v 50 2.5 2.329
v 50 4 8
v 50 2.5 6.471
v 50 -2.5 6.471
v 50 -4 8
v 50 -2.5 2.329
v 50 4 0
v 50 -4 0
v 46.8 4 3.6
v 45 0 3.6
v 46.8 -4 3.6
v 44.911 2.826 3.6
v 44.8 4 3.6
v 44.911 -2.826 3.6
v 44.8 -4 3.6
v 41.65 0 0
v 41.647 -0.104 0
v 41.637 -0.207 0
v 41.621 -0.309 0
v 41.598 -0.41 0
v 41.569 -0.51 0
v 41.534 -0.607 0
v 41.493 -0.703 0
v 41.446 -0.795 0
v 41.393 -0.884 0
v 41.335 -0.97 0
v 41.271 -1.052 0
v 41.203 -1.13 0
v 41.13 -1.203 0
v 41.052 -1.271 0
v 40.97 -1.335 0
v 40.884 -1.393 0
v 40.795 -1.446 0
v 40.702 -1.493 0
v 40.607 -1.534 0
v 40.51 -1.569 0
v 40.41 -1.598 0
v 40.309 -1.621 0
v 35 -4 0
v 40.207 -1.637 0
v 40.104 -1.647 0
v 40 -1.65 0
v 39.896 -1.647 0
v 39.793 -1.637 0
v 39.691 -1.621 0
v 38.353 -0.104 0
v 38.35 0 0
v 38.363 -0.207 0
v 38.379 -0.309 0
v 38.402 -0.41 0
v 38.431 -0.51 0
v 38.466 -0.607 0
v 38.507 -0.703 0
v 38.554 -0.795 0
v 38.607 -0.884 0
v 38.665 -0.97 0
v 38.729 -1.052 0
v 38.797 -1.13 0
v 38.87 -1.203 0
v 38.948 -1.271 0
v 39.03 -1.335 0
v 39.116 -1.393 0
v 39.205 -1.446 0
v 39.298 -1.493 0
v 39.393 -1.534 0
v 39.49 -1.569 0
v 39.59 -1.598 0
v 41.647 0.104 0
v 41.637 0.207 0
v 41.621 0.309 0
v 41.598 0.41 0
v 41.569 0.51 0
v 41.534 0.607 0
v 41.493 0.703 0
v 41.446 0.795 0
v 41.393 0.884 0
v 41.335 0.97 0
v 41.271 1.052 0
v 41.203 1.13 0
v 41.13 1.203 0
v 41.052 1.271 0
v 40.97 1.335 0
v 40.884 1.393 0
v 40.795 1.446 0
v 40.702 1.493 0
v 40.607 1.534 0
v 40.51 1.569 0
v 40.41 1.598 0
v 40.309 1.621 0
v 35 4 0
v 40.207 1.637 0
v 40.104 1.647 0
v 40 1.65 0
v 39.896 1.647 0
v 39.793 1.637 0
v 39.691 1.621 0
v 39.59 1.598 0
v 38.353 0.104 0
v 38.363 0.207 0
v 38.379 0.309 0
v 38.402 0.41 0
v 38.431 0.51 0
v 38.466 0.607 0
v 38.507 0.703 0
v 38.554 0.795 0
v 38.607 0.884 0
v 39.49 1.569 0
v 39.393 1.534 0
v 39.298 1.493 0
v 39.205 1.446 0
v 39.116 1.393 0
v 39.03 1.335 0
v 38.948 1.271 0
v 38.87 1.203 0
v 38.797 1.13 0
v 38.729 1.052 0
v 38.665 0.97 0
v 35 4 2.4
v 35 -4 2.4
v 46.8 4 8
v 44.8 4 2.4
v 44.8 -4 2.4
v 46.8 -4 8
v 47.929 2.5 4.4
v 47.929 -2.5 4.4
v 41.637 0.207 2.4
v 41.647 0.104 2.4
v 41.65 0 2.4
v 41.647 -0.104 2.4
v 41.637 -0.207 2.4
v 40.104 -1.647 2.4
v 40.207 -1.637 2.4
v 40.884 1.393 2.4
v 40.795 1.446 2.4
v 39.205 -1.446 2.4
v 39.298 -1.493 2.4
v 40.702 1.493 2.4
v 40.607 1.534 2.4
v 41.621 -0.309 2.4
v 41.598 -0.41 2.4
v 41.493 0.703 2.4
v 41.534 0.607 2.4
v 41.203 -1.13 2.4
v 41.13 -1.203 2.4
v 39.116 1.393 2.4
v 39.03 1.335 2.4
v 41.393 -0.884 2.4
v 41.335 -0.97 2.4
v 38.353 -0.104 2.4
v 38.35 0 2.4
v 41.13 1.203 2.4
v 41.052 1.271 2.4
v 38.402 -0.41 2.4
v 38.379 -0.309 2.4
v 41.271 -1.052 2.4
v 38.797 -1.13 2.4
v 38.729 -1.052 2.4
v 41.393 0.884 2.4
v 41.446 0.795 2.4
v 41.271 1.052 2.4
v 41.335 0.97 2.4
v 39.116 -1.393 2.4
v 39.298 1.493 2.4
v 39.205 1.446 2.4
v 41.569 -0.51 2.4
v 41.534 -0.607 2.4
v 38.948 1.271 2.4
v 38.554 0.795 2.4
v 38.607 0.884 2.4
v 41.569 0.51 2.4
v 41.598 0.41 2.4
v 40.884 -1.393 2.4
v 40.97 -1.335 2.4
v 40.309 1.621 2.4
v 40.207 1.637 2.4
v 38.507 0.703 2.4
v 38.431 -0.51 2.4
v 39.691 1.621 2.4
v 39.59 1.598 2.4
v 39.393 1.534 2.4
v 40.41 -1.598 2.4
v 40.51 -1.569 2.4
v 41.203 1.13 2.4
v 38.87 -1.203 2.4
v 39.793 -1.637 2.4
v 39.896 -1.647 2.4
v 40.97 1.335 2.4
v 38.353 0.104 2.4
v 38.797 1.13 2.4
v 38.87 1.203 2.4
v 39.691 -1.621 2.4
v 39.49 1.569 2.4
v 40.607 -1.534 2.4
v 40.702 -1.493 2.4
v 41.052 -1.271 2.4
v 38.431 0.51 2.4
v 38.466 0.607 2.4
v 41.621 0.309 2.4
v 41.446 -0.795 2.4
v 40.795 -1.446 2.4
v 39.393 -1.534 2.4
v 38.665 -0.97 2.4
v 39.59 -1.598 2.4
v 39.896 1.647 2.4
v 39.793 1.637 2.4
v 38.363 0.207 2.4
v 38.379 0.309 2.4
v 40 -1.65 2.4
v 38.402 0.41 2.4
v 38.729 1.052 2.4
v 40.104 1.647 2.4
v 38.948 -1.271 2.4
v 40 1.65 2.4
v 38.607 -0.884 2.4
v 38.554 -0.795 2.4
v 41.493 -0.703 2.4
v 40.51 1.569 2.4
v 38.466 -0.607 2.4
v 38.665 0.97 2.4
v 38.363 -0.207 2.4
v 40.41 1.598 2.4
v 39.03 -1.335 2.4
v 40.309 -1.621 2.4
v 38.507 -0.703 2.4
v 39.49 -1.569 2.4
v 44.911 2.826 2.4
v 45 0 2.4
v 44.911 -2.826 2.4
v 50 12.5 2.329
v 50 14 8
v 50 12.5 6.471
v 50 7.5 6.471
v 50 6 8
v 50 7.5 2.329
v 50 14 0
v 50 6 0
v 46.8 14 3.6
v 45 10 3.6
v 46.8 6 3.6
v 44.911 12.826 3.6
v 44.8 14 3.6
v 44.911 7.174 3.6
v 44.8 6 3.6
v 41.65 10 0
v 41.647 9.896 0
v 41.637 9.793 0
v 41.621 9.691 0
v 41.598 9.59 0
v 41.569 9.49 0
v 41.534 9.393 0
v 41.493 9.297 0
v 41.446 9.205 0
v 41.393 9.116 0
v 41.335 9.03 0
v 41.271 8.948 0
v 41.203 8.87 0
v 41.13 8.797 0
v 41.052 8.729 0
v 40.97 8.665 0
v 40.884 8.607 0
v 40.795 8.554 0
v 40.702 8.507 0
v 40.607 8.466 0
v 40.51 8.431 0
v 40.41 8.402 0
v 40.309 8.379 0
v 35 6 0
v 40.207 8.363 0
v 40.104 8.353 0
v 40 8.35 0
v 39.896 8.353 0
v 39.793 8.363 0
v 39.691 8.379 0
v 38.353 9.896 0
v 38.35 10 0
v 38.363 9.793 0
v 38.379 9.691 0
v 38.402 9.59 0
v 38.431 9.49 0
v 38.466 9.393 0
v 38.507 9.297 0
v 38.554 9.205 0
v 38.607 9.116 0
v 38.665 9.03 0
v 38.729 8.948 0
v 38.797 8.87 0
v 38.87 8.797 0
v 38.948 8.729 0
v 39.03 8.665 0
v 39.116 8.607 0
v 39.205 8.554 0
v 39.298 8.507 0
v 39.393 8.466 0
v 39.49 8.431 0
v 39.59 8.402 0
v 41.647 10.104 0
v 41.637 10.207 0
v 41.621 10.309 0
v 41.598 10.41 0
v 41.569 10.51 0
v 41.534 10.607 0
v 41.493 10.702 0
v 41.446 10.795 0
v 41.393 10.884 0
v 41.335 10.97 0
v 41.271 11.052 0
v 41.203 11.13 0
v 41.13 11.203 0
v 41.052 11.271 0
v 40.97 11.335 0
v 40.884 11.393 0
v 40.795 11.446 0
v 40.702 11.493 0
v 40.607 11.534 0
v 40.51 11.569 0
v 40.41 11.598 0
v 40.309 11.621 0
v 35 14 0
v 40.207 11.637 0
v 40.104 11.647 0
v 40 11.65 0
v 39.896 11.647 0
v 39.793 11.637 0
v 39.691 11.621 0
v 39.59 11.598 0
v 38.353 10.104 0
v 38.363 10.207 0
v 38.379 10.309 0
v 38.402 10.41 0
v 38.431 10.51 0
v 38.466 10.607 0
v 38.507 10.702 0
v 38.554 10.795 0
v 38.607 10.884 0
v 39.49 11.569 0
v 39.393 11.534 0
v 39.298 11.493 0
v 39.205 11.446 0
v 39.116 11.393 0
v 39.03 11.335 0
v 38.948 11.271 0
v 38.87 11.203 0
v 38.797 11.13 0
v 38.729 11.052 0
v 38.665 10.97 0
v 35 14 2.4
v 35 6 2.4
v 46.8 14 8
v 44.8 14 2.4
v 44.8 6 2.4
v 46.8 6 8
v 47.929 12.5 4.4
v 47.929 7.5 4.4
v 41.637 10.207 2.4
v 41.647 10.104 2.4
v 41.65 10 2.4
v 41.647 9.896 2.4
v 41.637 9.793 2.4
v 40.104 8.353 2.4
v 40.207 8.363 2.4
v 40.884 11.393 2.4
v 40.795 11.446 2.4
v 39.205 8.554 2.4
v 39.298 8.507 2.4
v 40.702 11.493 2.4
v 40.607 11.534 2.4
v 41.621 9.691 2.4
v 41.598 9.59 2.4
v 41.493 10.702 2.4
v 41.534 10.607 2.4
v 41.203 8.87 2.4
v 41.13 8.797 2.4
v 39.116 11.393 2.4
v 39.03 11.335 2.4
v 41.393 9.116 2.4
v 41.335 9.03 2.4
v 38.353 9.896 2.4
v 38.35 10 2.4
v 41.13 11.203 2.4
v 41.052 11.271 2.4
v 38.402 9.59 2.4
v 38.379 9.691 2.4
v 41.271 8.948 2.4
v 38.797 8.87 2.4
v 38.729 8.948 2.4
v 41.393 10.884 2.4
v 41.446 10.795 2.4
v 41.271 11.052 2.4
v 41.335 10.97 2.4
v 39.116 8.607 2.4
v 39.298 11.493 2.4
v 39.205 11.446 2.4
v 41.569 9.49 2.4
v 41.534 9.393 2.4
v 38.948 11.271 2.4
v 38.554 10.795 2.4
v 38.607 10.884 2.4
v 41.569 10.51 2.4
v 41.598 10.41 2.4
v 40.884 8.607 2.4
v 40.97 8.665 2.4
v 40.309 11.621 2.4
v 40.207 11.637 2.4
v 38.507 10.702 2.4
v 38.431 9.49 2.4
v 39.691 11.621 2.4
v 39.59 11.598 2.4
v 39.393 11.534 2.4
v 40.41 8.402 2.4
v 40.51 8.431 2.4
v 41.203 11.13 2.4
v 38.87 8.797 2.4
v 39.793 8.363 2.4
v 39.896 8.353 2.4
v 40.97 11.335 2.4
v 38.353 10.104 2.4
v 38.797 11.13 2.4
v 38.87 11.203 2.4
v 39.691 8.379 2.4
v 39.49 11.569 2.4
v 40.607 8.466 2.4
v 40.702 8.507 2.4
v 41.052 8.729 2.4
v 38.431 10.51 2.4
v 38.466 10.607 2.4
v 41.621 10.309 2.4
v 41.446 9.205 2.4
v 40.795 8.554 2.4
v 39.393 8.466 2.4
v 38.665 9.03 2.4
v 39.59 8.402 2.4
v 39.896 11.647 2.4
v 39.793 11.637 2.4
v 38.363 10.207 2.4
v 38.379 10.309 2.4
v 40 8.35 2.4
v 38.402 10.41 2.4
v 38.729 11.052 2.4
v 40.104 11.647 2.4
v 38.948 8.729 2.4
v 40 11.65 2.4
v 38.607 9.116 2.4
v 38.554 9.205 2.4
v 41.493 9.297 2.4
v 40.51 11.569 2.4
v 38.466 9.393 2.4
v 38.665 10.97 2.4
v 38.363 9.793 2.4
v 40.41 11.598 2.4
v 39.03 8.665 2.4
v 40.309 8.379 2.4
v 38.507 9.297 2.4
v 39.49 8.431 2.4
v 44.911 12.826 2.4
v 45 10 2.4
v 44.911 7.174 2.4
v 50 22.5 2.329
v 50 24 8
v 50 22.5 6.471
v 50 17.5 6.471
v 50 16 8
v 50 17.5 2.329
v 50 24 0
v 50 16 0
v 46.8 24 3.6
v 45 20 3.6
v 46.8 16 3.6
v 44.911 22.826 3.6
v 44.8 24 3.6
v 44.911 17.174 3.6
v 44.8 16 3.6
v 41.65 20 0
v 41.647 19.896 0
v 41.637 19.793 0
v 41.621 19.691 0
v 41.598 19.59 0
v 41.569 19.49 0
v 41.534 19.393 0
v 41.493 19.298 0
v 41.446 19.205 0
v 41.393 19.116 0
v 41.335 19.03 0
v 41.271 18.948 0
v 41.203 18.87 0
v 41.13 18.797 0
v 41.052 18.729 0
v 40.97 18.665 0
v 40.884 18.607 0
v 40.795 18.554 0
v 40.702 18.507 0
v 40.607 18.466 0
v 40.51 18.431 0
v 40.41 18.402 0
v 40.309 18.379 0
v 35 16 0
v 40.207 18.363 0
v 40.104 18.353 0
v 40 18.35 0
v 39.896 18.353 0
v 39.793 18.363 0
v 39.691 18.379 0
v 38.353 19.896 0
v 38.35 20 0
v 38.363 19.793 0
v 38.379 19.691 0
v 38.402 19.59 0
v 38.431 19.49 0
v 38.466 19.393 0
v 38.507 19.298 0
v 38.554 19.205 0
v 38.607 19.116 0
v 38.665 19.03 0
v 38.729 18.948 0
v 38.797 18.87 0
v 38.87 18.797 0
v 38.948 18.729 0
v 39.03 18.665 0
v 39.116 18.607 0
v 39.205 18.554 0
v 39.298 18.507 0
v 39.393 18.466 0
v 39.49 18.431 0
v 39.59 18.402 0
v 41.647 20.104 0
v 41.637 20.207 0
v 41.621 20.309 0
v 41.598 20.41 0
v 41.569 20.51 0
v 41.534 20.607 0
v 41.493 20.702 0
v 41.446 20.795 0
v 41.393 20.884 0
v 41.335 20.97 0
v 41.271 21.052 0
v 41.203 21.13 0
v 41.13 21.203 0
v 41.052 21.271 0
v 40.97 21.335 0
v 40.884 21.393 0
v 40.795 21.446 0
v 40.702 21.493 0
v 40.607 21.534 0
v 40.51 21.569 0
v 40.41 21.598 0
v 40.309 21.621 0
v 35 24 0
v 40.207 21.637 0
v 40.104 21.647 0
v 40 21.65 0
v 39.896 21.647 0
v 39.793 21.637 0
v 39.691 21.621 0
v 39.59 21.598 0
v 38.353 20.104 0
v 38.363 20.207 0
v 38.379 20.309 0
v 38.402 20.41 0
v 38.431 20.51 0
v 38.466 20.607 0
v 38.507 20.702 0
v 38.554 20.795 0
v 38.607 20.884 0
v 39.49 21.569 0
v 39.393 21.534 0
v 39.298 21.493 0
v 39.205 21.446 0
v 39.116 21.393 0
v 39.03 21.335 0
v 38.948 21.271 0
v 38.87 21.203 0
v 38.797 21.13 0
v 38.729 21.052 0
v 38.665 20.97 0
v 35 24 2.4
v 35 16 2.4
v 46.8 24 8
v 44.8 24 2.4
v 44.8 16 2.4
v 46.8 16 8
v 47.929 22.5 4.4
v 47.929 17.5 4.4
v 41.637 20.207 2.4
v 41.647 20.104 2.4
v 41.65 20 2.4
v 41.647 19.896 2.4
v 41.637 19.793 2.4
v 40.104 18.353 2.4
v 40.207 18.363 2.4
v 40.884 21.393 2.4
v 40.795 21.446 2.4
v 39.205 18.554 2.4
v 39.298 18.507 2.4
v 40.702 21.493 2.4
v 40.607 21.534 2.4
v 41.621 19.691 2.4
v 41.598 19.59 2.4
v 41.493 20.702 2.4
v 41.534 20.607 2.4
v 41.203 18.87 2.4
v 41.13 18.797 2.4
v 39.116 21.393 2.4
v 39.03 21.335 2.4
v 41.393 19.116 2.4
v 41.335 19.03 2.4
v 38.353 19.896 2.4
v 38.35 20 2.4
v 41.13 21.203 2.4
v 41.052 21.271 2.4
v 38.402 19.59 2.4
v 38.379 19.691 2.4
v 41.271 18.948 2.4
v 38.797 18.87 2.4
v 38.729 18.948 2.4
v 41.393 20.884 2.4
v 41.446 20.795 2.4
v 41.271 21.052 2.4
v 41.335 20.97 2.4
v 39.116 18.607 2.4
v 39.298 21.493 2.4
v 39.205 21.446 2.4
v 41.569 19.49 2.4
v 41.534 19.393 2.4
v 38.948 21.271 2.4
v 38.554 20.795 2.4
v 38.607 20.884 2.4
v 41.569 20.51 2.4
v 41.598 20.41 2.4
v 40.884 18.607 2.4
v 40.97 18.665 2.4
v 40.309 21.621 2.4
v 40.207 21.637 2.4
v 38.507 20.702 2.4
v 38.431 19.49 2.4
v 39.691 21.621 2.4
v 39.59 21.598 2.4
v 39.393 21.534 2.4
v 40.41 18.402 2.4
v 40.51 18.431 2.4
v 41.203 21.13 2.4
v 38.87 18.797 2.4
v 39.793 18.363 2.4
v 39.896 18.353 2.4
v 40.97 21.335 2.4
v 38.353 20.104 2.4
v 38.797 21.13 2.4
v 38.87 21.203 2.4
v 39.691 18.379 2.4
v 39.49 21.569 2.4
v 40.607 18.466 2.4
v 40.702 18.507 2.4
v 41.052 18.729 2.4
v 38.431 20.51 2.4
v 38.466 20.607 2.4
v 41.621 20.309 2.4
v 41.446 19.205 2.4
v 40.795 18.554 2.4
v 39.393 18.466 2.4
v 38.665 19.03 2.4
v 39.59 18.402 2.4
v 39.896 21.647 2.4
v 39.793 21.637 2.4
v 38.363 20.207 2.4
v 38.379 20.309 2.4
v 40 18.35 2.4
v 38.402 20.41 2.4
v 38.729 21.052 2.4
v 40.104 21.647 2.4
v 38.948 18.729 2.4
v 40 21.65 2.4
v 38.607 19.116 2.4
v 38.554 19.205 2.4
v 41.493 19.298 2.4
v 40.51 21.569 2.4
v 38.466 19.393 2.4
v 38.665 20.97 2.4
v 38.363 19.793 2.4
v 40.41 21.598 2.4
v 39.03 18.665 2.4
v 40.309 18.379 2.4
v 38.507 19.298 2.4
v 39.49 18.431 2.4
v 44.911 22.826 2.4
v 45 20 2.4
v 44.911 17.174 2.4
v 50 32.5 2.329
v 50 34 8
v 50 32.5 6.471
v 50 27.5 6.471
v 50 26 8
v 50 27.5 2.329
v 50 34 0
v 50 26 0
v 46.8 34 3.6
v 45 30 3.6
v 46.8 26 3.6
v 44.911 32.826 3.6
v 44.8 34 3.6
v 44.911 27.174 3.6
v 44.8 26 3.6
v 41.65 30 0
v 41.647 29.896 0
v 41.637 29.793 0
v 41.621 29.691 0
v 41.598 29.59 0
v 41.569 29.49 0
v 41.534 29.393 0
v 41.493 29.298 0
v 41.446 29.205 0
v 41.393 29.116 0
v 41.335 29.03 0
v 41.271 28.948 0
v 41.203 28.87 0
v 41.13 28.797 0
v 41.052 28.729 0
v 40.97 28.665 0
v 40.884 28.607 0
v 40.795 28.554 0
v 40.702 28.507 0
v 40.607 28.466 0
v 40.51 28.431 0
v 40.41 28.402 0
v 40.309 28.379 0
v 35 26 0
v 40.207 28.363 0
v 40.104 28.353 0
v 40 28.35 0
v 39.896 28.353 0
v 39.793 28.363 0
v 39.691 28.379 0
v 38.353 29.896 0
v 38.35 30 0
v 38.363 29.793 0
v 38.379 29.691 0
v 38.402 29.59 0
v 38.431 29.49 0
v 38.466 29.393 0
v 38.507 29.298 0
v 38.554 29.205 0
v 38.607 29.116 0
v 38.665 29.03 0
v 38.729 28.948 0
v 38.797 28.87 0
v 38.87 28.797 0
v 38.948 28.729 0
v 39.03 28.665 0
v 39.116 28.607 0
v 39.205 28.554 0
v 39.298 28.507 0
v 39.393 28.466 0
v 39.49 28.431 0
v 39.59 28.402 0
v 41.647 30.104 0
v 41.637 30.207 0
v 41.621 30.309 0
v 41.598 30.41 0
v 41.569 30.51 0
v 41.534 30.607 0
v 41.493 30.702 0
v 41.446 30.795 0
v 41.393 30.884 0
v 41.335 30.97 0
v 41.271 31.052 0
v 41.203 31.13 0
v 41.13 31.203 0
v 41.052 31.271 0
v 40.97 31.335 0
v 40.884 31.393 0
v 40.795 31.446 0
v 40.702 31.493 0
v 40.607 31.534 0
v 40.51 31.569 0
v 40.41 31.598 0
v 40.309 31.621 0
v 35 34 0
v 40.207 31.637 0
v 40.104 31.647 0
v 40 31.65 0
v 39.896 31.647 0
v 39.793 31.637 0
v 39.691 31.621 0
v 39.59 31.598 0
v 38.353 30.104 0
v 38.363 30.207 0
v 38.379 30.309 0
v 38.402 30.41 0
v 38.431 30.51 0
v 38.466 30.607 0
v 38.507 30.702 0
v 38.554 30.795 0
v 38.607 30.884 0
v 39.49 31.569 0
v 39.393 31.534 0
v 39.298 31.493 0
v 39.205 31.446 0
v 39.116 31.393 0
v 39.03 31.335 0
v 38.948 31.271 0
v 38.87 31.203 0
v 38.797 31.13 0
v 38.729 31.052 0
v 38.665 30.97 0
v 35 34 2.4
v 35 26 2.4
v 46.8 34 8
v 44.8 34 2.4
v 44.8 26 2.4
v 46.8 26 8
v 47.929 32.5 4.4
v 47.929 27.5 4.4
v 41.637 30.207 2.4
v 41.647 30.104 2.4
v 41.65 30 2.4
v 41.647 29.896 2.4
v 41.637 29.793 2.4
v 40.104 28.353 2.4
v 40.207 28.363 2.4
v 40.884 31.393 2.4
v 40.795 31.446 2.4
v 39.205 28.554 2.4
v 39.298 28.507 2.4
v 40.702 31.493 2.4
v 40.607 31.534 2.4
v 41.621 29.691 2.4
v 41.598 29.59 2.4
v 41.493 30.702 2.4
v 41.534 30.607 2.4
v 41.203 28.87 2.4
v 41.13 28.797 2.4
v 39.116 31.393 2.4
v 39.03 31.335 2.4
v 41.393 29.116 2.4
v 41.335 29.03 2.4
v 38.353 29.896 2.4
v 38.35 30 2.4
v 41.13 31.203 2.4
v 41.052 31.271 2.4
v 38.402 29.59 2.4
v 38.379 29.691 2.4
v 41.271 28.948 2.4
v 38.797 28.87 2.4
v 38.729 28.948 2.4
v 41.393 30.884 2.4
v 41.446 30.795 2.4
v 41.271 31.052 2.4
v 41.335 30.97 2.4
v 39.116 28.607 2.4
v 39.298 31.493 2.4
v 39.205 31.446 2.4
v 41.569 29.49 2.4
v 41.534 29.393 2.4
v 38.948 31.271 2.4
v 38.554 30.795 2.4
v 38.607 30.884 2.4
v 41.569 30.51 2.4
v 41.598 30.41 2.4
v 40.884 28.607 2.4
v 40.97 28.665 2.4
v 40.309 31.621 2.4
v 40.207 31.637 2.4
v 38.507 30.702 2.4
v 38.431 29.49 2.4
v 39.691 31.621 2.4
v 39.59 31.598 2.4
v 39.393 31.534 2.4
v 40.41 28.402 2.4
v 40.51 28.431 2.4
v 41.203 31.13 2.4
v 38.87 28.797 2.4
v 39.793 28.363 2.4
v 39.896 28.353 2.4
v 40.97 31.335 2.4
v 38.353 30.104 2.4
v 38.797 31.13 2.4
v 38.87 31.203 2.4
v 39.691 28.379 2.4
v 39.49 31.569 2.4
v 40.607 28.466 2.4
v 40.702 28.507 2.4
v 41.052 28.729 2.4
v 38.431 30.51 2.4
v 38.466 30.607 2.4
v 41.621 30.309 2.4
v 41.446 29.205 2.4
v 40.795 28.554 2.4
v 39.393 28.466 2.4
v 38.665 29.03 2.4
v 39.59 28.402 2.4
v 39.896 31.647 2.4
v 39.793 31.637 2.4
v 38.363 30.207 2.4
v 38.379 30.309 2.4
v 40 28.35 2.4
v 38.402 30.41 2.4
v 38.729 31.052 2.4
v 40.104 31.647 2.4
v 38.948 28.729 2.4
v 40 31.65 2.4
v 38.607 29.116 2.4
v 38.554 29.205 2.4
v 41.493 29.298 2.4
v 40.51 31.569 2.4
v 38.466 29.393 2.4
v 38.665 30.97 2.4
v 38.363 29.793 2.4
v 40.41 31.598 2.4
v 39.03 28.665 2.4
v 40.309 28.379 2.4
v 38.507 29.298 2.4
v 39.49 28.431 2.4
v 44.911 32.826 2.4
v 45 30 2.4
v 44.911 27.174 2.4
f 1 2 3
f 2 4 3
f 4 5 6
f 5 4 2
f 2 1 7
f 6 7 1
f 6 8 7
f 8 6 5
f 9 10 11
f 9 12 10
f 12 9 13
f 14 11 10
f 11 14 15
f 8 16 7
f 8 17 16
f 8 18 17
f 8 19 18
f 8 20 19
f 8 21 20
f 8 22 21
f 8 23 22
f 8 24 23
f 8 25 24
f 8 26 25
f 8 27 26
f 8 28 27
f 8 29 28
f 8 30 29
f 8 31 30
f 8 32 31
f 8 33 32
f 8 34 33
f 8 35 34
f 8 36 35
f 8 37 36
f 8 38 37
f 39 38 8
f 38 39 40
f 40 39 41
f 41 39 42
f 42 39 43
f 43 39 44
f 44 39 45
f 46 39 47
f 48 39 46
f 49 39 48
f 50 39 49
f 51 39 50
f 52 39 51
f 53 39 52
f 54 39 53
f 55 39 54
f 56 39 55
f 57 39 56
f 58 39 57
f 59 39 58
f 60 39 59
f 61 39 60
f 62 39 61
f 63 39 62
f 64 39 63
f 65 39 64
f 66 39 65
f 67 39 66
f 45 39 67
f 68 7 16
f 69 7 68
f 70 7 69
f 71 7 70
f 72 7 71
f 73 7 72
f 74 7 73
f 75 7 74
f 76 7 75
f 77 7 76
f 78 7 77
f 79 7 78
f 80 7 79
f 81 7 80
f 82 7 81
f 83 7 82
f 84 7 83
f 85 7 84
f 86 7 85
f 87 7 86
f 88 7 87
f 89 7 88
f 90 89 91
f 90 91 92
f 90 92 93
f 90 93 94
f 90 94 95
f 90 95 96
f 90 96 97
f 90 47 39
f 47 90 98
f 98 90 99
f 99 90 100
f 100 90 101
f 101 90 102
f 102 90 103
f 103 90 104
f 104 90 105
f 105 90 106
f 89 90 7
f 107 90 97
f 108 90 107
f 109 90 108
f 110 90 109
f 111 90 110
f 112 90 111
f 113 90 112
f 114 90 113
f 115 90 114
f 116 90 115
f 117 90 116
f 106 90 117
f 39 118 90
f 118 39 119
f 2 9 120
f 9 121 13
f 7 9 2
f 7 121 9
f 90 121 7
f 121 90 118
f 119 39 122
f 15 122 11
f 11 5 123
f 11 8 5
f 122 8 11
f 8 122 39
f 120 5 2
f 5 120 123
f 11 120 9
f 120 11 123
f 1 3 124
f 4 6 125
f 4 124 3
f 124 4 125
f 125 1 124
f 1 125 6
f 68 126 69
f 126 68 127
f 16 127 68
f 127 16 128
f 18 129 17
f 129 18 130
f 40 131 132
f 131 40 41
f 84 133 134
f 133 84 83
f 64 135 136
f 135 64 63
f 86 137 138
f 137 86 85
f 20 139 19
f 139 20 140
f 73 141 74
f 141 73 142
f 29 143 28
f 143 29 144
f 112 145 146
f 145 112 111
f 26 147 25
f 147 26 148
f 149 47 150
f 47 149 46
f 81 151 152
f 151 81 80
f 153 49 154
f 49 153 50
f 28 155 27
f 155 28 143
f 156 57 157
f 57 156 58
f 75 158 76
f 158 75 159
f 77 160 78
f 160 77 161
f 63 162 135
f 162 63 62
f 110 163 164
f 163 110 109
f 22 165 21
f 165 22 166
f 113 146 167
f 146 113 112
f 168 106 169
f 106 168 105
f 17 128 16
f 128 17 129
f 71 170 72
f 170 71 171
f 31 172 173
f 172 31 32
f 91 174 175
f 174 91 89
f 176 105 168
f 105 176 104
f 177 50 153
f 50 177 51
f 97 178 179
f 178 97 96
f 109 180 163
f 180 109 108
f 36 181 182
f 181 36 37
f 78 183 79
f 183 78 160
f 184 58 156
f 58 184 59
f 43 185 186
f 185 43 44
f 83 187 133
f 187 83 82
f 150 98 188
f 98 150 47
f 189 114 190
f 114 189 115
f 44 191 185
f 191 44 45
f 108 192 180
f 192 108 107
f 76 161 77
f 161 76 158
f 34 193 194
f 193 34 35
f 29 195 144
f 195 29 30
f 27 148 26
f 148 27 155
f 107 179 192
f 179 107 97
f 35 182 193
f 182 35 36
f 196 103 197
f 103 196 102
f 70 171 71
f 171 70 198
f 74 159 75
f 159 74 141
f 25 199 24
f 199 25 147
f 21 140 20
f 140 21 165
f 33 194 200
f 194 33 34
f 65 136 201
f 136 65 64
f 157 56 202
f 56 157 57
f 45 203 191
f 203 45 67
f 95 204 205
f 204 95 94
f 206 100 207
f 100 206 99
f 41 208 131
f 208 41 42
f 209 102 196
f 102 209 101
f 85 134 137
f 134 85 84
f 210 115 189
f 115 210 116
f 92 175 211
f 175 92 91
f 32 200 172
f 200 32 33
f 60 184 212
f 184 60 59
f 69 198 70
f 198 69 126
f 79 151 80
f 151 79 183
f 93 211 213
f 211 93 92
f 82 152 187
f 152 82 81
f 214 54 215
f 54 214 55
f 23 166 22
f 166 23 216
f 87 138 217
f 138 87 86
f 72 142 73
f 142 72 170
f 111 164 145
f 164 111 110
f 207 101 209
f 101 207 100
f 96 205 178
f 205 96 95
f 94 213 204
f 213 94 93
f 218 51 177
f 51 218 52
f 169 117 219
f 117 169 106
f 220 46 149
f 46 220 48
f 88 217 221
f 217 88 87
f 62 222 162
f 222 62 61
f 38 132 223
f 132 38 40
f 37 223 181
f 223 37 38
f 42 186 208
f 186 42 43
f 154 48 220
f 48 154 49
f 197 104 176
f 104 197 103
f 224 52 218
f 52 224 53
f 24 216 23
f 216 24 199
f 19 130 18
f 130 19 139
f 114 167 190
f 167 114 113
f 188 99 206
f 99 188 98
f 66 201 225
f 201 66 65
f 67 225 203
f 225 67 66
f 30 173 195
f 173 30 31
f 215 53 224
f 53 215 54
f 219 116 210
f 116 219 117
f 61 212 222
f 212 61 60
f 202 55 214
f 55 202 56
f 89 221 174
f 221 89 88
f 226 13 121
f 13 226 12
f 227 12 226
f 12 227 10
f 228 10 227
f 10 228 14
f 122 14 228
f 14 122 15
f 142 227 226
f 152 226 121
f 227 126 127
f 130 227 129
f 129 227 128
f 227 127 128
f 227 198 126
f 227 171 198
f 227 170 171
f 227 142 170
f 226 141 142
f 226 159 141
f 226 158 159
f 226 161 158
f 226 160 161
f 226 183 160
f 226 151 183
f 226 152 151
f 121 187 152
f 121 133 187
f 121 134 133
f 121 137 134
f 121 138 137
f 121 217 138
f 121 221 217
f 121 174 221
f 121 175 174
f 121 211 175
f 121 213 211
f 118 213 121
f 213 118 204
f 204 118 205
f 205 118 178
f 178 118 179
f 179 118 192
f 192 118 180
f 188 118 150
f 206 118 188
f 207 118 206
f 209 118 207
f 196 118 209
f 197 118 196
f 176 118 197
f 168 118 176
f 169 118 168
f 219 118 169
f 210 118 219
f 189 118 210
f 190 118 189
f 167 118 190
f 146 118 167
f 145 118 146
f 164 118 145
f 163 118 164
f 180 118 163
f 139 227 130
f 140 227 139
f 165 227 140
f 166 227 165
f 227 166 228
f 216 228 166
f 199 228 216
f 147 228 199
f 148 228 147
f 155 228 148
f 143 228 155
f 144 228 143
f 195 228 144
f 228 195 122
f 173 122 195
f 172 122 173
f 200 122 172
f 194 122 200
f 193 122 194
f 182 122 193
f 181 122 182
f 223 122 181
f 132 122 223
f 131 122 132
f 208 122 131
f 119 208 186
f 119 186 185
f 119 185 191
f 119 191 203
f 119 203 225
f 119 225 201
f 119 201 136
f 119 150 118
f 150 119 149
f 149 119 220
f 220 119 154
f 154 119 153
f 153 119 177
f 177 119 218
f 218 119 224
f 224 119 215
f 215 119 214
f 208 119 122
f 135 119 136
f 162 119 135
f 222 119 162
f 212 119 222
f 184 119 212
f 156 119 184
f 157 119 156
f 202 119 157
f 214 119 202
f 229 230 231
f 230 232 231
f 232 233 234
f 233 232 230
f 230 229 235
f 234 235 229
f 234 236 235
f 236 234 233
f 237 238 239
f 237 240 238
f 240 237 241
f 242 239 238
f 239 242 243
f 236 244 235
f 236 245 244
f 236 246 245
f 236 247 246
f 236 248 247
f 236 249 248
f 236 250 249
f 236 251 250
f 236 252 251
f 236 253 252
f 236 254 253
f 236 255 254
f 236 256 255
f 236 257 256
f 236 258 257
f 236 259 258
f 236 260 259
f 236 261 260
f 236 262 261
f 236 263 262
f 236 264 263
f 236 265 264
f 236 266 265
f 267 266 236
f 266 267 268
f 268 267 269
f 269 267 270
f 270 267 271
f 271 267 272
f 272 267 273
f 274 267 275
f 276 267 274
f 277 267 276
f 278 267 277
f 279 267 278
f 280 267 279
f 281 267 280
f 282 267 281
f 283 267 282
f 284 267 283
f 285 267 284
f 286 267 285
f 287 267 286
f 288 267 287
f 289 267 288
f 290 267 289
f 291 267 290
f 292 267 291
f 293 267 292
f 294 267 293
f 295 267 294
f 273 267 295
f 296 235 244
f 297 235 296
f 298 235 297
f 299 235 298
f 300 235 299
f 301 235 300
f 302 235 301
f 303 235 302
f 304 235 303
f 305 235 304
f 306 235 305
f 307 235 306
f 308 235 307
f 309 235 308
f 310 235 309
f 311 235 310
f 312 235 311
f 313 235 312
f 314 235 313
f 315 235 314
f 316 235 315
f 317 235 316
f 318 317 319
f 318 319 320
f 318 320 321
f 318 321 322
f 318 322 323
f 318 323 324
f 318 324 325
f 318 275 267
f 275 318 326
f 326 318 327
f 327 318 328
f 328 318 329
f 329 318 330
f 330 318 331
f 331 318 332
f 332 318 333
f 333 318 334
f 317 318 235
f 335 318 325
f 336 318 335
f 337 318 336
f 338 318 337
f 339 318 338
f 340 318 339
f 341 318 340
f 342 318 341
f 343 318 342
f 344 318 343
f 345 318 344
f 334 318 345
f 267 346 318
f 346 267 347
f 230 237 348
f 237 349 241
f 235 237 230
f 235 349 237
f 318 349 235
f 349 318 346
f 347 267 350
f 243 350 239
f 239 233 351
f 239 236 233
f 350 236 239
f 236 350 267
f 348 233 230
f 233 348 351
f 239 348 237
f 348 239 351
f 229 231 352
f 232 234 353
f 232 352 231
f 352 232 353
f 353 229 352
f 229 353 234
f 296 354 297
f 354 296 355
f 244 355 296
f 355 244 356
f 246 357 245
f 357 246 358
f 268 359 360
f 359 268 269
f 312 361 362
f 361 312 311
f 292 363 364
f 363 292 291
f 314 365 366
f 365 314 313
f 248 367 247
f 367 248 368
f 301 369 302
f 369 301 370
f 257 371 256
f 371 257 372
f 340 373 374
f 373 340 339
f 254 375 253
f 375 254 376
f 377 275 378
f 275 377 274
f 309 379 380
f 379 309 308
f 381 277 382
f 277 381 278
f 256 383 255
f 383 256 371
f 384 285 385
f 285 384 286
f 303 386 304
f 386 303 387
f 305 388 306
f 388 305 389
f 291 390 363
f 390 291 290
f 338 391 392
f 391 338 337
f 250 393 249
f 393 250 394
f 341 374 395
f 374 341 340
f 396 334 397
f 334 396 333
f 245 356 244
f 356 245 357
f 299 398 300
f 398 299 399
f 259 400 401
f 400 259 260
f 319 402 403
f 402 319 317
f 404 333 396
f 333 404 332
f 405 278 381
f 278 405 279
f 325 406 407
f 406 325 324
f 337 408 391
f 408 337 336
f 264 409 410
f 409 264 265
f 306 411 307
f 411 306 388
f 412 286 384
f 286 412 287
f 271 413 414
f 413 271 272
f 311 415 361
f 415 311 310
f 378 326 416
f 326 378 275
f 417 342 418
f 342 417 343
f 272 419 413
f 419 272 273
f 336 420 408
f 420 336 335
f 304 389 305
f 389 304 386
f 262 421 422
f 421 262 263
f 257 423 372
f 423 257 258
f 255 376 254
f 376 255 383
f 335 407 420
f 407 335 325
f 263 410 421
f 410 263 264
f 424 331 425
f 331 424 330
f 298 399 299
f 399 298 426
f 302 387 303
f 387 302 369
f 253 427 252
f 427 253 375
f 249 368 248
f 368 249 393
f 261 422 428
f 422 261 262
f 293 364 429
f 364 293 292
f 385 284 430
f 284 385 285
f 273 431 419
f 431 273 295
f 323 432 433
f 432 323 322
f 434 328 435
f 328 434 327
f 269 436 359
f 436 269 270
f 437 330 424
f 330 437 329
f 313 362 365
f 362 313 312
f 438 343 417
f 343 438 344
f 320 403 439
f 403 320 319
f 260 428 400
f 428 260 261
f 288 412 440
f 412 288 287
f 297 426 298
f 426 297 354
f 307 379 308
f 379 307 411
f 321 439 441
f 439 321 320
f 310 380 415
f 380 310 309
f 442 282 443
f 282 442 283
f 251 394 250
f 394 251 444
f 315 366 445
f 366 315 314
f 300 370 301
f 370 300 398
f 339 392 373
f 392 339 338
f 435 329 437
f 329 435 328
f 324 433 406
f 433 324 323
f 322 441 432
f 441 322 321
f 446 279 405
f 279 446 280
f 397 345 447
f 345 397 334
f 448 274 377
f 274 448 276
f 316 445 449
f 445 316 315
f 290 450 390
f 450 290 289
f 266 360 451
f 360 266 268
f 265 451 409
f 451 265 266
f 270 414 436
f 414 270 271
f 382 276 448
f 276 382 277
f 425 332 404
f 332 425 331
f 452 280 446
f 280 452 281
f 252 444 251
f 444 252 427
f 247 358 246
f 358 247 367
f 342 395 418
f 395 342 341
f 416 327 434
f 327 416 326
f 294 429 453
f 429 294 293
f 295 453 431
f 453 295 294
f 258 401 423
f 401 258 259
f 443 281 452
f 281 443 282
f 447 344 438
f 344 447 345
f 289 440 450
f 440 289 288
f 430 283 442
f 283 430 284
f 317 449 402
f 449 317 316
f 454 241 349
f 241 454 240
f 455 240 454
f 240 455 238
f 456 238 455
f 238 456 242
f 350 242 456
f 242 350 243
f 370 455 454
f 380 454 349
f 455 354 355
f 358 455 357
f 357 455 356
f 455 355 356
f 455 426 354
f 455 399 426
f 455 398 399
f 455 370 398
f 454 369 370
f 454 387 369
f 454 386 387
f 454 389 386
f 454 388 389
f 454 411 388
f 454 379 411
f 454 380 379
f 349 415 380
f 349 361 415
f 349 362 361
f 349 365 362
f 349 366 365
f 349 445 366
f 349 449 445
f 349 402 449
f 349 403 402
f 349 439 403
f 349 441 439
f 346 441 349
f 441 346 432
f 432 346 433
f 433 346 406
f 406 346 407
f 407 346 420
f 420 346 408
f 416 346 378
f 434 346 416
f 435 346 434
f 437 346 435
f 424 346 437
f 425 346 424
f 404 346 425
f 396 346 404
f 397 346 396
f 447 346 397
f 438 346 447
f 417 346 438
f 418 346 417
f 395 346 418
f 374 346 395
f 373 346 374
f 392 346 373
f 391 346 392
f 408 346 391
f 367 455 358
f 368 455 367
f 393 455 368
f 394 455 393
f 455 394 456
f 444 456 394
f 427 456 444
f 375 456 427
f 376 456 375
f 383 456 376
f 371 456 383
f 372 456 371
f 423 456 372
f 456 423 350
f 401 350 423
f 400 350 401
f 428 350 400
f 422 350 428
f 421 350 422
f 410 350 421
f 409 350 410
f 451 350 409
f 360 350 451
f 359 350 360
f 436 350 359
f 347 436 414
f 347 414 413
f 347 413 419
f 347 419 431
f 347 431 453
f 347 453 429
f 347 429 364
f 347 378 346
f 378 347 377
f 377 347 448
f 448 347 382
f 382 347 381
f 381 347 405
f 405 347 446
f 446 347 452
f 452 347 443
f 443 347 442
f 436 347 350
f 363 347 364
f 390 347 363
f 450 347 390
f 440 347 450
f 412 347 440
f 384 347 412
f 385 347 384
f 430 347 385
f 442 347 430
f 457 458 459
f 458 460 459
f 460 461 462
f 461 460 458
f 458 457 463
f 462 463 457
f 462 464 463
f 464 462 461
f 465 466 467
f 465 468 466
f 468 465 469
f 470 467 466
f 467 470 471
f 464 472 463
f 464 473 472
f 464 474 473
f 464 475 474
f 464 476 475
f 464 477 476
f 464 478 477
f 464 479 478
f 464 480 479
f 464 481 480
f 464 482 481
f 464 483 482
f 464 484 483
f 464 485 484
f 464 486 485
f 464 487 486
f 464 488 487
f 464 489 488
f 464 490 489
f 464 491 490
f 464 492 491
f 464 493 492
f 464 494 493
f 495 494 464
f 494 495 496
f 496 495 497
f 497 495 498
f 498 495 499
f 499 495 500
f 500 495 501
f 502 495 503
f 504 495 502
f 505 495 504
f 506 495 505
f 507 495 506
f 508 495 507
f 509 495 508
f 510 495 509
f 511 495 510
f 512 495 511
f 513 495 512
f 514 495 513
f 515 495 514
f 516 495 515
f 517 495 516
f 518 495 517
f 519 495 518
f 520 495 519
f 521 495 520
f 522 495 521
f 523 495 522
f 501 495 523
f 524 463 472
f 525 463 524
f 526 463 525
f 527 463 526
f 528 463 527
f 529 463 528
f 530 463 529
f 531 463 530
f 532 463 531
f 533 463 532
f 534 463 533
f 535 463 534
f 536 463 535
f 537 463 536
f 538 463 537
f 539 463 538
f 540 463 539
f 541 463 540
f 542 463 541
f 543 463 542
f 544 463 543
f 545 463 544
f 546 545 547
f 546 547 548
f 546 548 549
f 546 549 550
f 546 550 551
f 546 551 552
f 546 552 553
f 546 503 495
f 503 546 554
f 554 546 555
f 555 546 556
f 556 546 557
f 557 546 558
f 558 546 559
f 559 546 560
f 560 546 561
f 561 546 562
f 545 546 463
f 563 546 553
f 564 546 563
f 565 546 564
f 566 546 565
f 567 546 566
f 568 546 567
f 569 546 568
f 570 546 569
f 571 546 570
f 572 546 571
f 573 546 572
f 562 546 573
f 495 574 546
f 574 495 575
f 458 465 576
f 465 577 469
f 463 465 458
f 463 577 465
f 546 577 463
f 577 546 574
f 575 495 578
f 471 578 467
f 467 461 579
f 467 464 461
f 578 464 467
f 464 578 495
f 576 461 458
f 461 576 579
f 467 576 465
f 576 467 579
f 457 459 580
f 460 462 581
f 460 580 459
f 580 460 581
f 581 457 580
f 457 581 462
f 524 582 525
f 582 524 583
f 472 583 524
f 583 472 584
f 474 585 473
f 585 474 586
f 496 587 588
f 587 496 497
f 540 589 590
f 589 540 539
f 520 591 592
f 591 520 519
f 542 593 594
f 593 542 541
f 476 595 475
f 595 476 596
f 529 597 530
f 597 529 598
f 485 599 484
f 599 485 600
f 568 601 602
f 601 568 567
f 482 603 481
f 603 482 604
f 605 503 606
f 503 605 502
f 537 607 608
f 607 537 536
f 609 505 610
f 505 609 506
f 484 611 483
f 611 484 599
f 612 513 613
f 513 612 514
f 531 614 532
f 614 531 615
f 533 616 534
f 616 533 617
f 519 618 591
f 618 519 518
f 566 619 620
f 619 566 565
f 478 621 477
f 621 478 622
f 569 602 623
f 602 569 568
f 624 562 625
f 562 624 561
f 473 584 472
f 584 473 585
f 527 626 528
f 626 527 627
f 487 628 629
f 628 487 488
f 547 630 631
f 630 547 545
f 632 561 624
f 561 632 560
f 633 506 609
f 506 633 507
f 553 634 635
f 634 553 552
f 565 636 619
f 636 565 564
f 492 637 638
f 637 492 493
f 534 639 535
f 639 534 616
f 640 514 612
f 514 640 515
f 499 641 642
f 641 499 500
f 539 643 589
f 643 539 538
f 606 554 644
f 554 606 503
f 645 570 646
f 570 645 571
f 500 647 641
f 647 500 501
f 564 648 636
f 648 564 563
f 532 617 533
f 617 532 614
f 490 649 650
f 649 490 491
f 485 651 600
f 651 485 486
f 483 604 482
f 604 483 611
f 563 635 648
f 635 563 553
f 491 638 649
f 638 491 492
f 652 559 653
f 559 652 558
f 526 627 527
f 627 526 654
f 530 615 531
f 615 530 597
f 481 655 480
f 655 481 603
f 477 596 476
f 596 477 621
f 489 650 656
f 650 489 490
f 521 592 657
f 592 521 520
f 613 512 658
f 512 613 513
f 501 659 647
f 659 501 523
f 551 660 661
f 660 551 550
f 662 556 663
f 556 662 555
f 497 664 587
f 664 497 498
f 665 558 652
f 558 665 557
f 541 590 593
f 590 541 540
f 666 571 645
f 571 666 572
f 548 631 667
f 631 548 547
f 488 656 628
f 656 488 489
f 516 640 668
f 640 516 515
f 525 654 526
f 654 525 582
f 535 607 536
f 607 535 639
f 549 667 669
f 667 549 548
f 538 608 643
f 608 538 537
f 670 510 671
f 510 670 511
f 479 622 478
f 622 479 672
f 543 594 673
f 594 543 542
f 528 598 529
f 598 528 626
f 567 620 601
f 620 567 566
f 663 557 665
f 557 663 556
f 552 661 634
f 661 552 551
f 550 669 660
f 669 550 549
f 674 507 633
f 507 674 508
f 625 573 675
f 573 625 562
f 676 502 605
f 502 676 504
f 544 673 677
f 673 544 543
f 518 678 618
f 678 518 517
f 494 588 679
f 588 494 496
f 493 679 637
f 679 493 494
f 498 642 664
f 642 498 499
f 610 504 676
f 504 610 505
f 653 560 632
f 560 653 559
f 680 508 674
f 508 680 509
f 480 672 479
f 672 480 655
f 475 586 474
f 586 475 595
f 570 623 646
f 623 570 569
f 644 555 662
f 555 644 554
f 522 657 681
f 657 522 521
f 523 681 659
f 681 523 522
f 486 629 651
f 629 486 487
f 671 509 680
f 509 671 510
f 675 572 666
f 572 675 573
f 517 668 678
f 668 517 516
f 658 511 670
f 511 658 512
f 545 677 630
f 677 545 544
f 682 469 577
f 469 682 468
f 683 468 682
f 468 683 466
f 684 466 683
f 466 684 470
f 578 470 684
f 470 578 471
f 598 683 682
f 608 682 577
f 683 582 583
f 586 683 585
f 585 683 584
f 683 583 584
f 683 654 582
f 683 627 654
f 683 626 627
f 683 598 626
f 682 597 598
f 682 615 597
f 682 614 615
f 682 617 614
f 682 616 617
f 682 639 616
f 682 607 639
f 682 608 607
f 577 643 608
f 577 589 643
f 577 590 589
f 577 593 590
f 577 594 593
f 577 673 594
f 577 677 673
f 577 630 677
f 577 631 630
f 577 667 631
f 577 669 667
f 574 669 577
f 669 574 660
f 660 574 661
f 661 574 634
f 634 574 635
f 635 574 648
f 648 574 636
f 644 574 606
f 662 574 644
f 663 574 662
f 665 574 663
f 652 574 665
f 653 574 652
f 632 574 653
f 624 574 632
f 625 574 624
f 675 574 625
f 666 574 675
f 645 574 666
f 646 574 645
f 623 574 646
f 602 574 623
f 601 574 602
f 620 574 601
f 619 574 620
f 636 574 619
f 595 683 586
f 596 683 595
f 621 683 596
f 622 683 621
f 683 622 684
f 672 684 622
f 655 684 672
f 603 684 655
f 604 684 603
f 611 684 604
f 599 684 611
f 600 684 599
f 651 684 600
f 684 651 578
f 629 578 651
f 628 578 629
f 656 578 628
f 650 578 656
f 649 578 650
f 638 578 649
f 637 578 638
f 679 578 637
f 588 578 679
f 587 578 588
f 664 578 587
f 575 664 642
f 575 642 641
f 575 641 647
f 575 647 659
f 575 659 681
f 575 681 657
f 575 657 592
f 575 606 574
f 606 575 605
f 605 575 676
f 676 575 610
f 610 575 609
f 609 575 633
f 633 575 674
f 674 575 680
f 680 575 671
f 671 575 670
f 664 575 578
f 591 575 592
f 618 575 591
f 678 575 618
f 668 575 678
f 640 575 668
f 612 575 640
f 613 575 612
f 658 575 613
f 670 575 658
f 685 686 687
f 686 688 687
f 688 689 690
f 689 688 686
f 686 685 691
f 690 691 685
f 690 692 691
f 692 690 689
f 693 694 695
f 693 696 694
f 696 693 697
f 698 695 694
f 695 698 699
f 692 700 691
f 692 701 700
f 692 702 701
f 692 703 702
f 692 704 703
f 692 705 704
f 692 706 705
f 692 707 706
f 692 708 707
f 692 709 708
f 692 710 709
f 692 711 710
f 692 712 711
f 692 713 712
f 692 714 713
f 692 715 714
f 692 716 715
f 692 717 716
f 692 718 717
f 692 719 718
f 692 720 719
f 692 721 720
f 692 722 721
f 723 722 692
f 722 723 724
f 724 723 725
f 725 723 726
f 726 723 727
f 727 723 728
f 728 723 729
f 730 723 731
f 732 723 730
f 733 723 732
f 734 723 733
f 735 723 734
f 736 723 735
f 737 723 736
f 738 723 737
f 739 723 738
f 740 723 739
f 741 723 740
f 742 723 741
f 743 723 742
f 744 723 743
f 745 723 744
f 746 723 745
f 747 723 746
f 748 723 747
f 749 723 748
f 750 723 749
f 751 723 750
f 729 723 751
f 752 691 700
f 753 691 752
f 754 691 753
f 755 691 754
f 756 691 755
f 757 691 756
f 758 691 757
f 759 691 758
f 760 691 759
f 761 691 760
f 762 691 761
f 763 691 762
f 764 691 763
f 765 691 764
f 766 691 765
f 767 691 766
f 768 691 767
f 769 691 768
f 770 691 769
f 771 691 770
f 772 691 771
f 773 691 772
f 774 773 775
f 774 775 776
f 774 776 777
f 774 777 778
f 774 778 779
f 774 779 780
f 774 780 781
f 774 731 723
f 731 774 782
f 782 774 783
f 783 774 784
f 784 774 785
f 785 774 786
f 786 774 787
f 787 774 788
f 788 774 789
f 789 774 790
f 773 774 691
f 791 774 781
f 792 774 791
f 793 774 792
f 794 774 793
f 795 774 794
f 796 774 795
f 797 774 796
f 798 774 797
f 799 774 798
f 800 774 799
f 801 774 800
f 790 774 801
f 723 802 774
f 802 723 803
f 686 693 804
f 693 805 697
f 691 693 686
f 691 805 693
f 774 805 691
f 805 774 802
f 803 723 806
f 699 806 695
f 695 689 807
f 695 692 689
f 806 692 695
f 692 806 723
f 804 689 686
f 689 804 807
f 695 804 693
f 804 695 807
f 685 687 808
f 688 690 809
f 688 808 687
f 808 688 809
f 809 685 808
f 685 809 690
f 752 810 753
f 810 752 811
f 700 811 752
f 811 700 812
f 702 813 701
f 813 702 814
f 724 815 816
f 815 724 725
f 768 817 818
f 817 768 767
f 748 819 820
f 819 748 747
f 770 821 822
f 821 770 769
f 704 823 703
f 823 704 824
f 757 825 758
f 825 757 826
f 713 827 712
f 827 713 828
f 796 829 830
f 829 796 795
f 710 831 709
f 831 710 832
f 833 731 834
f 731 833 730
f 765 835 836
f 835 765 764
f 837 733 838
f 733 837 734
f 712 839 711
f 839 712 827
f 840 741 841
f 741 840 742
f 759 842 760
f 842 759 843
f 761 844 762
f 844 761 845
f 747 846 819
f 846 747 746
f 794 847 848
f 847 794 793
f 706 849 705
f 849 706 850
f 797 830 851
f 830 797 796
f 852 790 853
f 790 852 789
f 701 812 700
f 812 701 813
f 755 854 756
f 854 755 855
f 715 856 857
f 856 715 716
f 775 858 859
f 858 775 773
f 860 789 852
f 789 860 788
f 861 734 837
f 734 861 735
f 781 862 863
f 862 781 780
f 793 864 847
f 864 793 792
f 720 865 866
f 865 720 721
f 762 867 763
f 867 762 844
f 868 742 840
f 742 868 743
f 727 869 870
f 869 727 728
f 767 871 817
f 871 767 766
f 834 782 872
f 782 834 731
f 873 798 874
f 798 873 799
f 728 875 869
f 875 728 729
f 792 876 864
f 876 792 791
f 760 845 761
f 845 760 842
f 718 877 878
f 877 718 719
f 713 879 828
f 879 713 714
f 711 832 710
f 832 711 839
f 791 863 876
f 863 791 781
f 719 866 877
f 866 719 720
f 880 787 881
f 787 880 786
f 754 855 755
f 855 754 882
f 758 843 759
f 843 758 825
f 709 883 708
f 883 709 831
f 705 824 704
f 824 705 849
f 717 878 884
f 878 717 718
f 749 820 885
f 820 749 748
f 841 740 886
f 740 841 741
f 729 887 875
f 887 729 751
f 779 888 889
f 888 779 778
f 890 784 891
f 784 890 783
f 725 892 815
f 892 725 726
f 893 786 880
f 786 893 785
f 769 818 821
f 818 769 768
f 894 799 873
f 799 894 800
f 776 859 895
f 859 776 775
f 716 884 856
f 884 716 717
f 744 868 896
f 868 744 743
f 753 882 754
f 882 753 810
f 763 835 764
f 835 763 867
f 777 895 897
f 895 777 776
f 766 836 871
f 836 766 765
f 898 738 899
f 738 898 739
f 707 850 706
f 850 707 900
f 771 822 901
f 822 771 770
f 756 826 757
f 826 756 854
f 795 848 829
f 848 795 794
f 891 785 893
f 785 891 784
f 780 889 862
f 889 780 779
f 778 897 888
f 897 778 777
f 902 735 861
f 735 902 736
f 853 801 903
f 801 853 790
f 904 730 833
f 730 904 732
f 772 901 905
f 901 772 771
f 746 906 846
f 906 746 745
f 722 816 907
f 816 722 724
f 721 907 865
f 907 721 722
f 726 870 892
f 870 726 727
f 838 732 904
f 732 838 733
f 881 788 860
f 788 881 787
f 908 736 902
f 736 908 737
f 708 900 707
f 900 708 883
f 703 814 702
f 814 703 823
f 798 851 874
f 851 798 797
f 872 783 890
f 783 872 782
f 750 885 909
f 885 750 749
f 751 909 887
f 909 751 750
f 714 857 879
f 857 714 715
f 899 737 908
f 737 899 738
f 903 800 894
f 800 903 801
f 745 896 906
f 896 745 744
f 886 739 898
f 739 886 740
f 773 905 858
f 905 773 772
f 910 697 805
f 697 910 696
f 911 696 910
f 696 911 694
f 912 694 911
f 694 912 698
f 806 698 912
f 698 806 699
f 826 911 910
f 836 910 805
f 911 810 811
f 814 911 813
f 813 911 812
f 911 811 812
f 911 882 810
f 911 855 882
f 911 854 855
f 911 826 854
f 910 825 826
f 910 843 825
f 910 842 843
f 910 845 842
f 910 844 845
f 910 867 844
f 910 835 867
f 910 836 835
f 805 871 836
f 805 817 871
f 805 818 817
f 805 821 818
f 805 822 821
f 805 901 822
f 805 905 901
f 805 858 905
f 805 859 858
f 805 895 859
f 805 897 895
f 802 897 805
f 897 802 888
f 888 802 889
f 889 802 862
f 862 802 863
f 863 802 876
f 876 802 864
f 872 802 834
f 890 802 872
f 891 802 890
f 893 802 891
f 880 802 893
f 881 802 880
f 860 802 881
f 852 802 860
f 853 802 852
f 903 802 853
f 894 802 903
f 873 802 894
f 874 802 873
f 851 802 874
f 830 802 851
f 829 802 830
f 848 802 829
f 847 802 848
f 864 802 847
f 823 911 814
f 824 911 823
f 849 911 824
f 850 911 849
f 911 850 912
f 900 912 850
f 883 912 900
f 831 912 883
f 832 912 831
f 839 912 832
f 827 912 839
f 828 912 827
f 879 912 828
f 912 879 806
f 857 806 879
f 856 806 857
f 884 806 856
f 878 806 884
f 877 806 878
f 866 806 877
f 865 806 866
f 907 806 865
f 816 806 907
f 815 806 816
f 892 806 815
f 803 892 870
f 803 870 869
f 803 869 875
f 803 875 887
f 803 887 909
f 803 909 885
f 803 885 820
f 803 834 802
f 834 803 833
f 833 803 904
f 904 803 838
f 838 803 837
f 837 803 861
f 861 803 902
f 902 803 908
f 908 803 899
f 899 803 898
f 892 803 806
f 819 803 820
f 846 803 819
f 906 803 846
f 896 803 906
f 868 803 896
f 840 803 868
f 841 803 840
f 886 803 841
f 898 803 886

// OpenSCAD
// file: fuse.scad
e=.001;

use <utils.scad>

module fuse_ptf75()
{
	color("#77dd77")
	{
	block([24.4,9.4,11.5+1.8],anchor=[0,0,-1]);
	translate([0,0,-3.5])
	cylinder(h=3.5+e,d=2.6);
	}

	for (x=[-7.5,7.5])
	translate([x,0,-3.5])
	cylinder(h=3.5+e,d=0.8);
	
}

preview()
{
	color("green")
	{
		translate([0,0,-1.6])
		cylinder(h=1.6,d=90);
	}
	fuse_ptf75();

}
// file: wago.scad
e=.001;

use <utils.scad>

module for_each_row(n, pitch)
{
	for (i=[0:n-1])
	translate([(i-(n-1)/2)*pitch, 0, 0])
	children();
}

module pcb_wago(n)
{
	pitch = 5;

	w = (n-1) * pitch + 7.4;
	h = 16.7;
	d = 16.3;
	color("#c0c0c0")
	difference()
	{
		translate([-(3.6+pitch*(n-1)/2),-(5.2+4.1),0])
		block([w,d,h],anchor=[-1,-1,-1]);

		for_each_row(n, pitch)
		{
			translate([0,-3,h-4])
			block([pitch-.8,d,4+e],anchor=[0,0,-1]);
			
			translate([0,-2.5,3])
			chamfer_block([pitch-.5,d,6],anchor=[0,0,-1],r=1);
		}
	}
		
	// pins
	for_each_row(n, pitch)
	{
		for (y=[-4.1,4.1])
		translate([0, y, -4])
		cylinder(h=4+e,d=0.8);

	}

	color("#ff7700")
	for_each_row(n, pitch)
	translate([0,-12.2,h-3])
	block([pitch-1,14,3],anchor=[0,-1,-1]);
}

preview()
{
	color("green")
	{
		translate([0,0,-1.6])
		cylinder(h=1.6,d=90);
	}
	pcb_wago(3);
}
// file: mw_irm.scad
e=.001;

use <utils.scad>

module irm_30_cover(m=0)
{
	w=69.5;
	d=39;
	h=24;

	top_w=w-2;
	top_d=d-1.5;

	chamf=2;
    r=2;

	r1=r+m;
	r2=r+chamf+m;

	hull()
	{
		chamfer_block_z([w+m*2,d+m*2,e],anchor=[0,0,-1],r=chamf);

		for (d = [ [-1,-1], [-1,1], [1,-1], [1,1] ])
		translate([d.x*(top_w/2-chamf-r), d.y*(top_d/2+m), h-chamf-r])
		rotate([d.y*90,0,0])
		cylinder(h=chamf,r1=r1,r2=r2);
	}
}

module irm_30()
{
	color("#333333")
	irm_30_cover(0)

	anchor([w,d,h], [0,0,-1])
	for (p=[
		[4,39-4.5],
		[4,39-4.5-5.5],
		[4+61.5,39-4.5],
		[4+61.5,39-4.5-9],
	])
	translate(p)
	translate([0,0,-3.5])
	cylinder(h=3.5+e,d=1);
}

preview()
{
	color("green")
	{
		translate([0,0,-1.6])
		cylinder(h=1.6,d=90);
	}
	irm_30();
	#irm_30_cover(1);
}
// file: pcb.scad
use <utils.scad>
use <wago.scad>
use <fuse.scad>
use <mw_irm.scad>

e=.001;
$fn=100;

pcb_height=1.6;
silk_height=.2;
stack_spacing=2.4;

module pcb_edges()
{
	difference()
	{
		cylinder(h=pcb_height, d=90);
		union()
		{
			for (r=[10,180+10])
			rotate([0,0,r])
			hull()
			{
				translate([0,-30,-e])
				cylinder(h=pcb_height+e*2, d=4);

				translate([0,-40,-e])
				cylinder(h=pcb_height+e*2, d=4);
			}
			hull()
			{
				for(x=[-5.5,9.5])
				for(y=[-19,-24])
				translate([x,y,-e])
				cylinder(h=pcb_height+e*2, d=4);
			}
		}
	}
}

module _pcb_holes(d)
{
	for (r=[0,90,180,270])
	rotate([0,0,r])
	translate([-40,0,-e])
	cylinder(h=pcb_height+e*2, d=d);
}

module lamp_psu()
{
	on_pcb()
	translate([0,0,stack_spacing])
	{
		color("green")
		difference()
		{
			pcb_edges();
			_pcb_holes(3.2);
		}

		color("white")
		on_pcb()
		translate([-45,-45,--e])
		linear_extrude(height=e+silk_height)
		import("silk.svg");
	}
}

module lamp_guard()
{
	color("green")
	difference()
	{
		pcb_edges();
		_pcb_holes(2.7);
	}
}

module on_pcb()
{
	translate([0,0,pcb_height])
	children();
}

module on_pcb_2()
{
	on_pcb()
	translate([0,0,stack_spacing])
	on_pcb()
	children();
}

module pcb_stack()
{
	lamp_guard();

	lamp_psu();

	on_pcb_2()
	{
		translate([15,32])
		rotate([0,0,-90])
		pcb_wago(2);

		translate([25,-23])
		rotate([0,0,-90])
		pcb_wago(2);

		translate([-22,-22])
		fuse_ptf75();

		translate([0,4.5])
		irm_30();
	}
}

preview()
pcb_stack();
// file: utils.scad
module xz_toward_y()
{
	scale([1, 1, -1])
	rotate([-90,0,0])
	children();
}

module anchor(dim, anchor=[0,0,0])
{
	translate([-(1+anchor.x)*dim.x/2, -(1+anchor.y)*dim.y/2, -(1+anchor.z)*dim.z/2])
	children();
}

module block(dim, anchor=[0,0,0])
{
	anchor(dim, anchor)
	cube(dim);
}

module rounded_block_y(dim, anchor=[0,0,0], r=0)
{
	anchor(dim, anchor)
	xz_toward_y()
	linear_extrude(dim.y)
	hull()
	for (p=[ [r,r], [dim.x-r, r], [dim.x-r, dim.z-r], [r, dim.z-r] ] )
	translate(p)
	circle(r);
}

module chamfer_block_y(dim, anchor=[0,0,0], r=0)
{
	anchor(dim, anchor)
	hull()
	{
		translate([r,0,0])
		cube([dim.x-r*2, dim.y, dim.z]);

		translate([0,0,r])
		cube([dim.x, dim.y, dim.z-r*2]);
	}
}

module chamfer_block_z(dim, anchor=[0,0,0], r=0)
{
	anchor(dim, anchor)
	hull()
	{
		translate([r,0,0])
		cube([dim.x-r*2, dim.y, dim.z]);

		translate([0,r,0])
		cube([dim.x, dim.y-r*2, dim.z]);
	}
}

module chamfer_block(dim, anchor=[0,0,0], r=0)
{
	anchor(dim, anchor)
	hull()
	{
		translate([r,r,0])
		cube([dim.x-r*2, dim.y-r*2, dim.z]);

		translate([r,0,r])
		cube([dim.x-r*2, dim.y, dim.z-r*2]);

		translate([0,r,r])
		cube([dim.x, dim.y-r*2, dim.z-r*2]);
	}
}

module preview()
{
	if ($preview)
	children();
}
// file: model.scad
use <utils.scad>
use <pcb.scad>
use <mw_irm.scad>
e=.001;
$fn=200;

cover_border=0.8;
cover_hole=18;
bottom=0.8;
d_top=105;
d_bottom=100;
cover_h=41.;
cover_spacing=3;
rib_size_bottom=8;
rib_size_top=3;
rib_width = 0.8;
n_ribs=4;

screw_surface_thickness=1.6;

wire_thickness=6;
wire_bend_r = 5;

clamp_screw_size=2.8;
clamp_nut_size=5.5;

pcb_screw_holes = 3.3;

m=.3;

flute_thickness = 1.6;
flute_d1=wire_thickness+flute_thickness;
flute_d2=33;
flute_h=35;
flute_top_thickness=0.8;

flute_y = cover_h+3;

module nut_hex(h,d)
{
	r = d/sqrt(3);
	cylinder(h=h,r=r, $fn=6);
}

module wire()
{
	color("white")
	translate([0,0,38.75])
	{
		cylinder(h=200,d=wire_thickness);
		rotate([-90,0,-90])
		translate([-wire_bend_r,0,0])
		rotate_extrude(angle=90)
		translate([wire_bend_r,0])
		circle(d=wire_thickness);

		translate([0,wire_bend_r-e,-wire_bend_r])
		rotate([-90,0,0])
		cylinder(h=10,d=wire_thickness);
	}
}

module wire_keepout_extra()
{
	translate([0,0,38.75-wire_bend_r])
	{
		block([wire_thickness,wire_thickness,100],[0,1,-1]);
		rotate([-90,0,0])
		block([wire_thickness,wire_thickness,100],[0,-1,-1]);
	}
}

module cover()
{
	color("#e0e0e0")

	difference()
	{
		cylinder(h=cover_h,d1=d_top,d2=d_bottom);

		difference()
		{
			cylinder(h=cover_h,d1=d_top-2*cover_border,d2=d_bottom-2*cover_border);

			translate([0,0,cover_h-bottom])
			cylinder(h=bottom+e,d=max(d_bottom,d_top));

			difference()
			{
				union()
				{
					for (i=[0:n_ribs-1])
					rotate([0,0,360*i/n_ribs])
					block([max(d_bottom,d_top)/2, rib_width, cover_h], anchor=[-1,0,-1]);
				}
				cylinder(h=cover_h,d1=d_top-2*(cover_border+rib_size_top),d2=d_bottom-2*(cover_border+rib_size_bottom));

			}
		}

		cylinder(h=cover_h+e,d=cover_hole);

		translate([0,0,-e])
		cylinder(h=cover_spacing+e,d=max(d_bottom,d_top)+e);

	cover_latches();
	}

}

module internal_space(m)
{
	difference()
	{
			cylinder(h=cover_h,r1=d_top/2-cover_border-m,r2=d_bottom/2-cover_border-m);

			translate([0,0,cover_h-bottom-m])
			cylinder(h=bottom+m+e,d=max(d_bottom,d_top));
	}
}

module at_irm()
{
	on_pcb_2()
	translate([0,4.5,0])
	children();
}

module clamp_outer_shape()
{

	hull()
	{
	for (i=[1,-1])
	translate([i*36,0,cover_h-bottom-6-m])
	rotate([90,0,0])
	cylinder(h=20,r=6,center=true);

	for (i=[1,-1])
	on_pcb_2()
	translate([i*39,0,0])
	rotate([90,0,0])
	cylinder(h=20,r=6,center=true);

	}
}

module wire_clamp()
{
	difference()
	{
		union()
		{
			intersection()
			{
				clamp_outer_shape();

				union()
				{
					translate([0,-5,0])
					block([200,1.6,200],anchor=[0,-1,0]);

					on_pcb_2()
					translate([0,-5,0])
					block([200,10,screw_surface_thickness],anchor=[0,-1,-1]);

					intersection()
					{
						at_irm()
						irm_30_cover(m=1.5);

						translate([0,-5,0])
						block([200,10,200],anchor=[0,-1,0]);
					}

			for (i=[-1, 1])
			difference()
			{
				translate([i*39,-5,25])
				block([8.1,10,1.6],anchor=[0,-1,-1]);

				translate([i*64,-4,20])
				rotate([0,0,i*42])
				block([30,30,30],anchor=[0,-1,0]);
			}


				}
			}

			translate([0,-5,30])
			block([28,14,9.9],anchor=[0,-1,-1]);

			for (x=[-30,30])
			difference()
			{
				translate([x,-5,30])
				block([1.6,10,9.9],anchor=[0,-1,-1]);

				translate([x,-4,42])
				rotate([130,0,0])
				block([30,30,30],anchor=[0,0,1]);
			}


		}

		union()
		{
			for (x=[-10,10])
			translate([x,5,40])
			rotate([120,0,0])
			{
				block([8+e,20,10],anchor=[0,0,1]);
				translate([0,-2.5,-e])
				cylinder(h=200+e,d=clamp_screw_size);

				translate([0,-2.5,8.5])
				nut_hex(h=200, d=clamp_nut_size);
			}
			at_irm()
			irm_30_cover(m=.5);
			on_pcb_2()
			block([200,200,100],anchor=[0,0,1]);

			wire();

			for (x=[-40,40])
			translate([x,0,0])
			cylinder(h=40,d=pcb_screw_holes);
		}
	}
}


module clamp_split()
{
	translate([0,-1.3,42])
	rotate([120,0,0])
	block([50,50,50], anchor=[0,0,1]);
}


module clamp_base()
{
	difference()
	{
		wire_clamp();
		clamp_split();
	}
}

module clamp_clamp()
{
	intersection()
	{
		difference()
		{
			wire_clamp();
			wire_keepout_extra();
		}
		clamp_split();
	}
}


module print_cover()
{
	translate([0,0,cover_h])
	rotate([180,0,0])
	cover();
}

module print_clamp_clamp()
{
	translate([0,0,cover_h-bottom-m])
	rotate([180,0,0])
	clamp_clamp();
}

module print_clamp_base()
{
	rotate([90,0,0])
	translate([0,5,0])
	rotate([180,0,0])
	on_pcb_2()
	rotate([180,0,0])
	clamp_base();
}


module cover_latch()
{
	difference()
	{
		on_pcb()
		union()
		{
			translate([35,0,0])
			block([15,8,3.6], anchor=[-1,0,-1]);
			translate([46.8,0,0])
			block([3.2,8,8], anchor=[-1,0,-1]);
		}

		translate([55,0,6])
		rotate([0,45,0])
		cube([10,5,10], center=true);

		translate([40,0,0])
		cylinder(h=10,d=pcb_screw_holes);

		on_pcb_2()
		translate([0,0,-1.6])
		cylinder(h=1.6,d=90);
	}
}

module print_cover_latch()
{
	rotate([180,0,0])
	on_pcb()
	rotate([180,0,0])
	cover_latch();
}

module cover_latches()
{
	for (r=[0,90,180,270])
	rotate([0,0,r])
	cover_latch();
}


module flute()
{

	color("#c0c0c0")
	difference()
	{

		translate([0, 0, flute_y])
		{
			cylinder(h=flute_top_thickness+e, d=flute_d2);
			translate([0, 0, flute_top_thickness])
			rotate_extrude($fn = 100)
			intersection()
			{
				square([flute_d2/2,flute_h-flute_top_thickness]);
			difference()
			{
				union()
				{
					translate([flute_d2/2, flute_h-flute_top_thickness])
					scale([flute_d2/2-flute_d1/2+flute_thickness, flute_h-flute_top_thickness+flute_thickness])
	    	    	circle(r=1, $fn = 100);
					translate([flute_d2/2-6, 0])
					square([3,3]);
				}
				translate([flute_d2/2, flute_h-flute_top_thickness])
				scale([flute_d2/2-flute_d1/2, flute_h-flute_top_thickness])
				circle(r=1, $fn = 100);

			}
			}
		}
		wire();
	}
}

module print_flute()
{
	translate([0, 0,-flute_y])
	flute();
}

preview()
{
	clamp_base();

	translate([0,0,20])
	clamp_clamp();
	translate([0,0,20])
	flute();

	wire();
	pcb_stack();

	translate([110,0,0])
	{
		cover();
		flute();
		wire();
	}

	cover_latches();

}
// main file
use <model.scad>

for (y=[0:10:30])
translate([0,y,0])
print_cover_latch();
